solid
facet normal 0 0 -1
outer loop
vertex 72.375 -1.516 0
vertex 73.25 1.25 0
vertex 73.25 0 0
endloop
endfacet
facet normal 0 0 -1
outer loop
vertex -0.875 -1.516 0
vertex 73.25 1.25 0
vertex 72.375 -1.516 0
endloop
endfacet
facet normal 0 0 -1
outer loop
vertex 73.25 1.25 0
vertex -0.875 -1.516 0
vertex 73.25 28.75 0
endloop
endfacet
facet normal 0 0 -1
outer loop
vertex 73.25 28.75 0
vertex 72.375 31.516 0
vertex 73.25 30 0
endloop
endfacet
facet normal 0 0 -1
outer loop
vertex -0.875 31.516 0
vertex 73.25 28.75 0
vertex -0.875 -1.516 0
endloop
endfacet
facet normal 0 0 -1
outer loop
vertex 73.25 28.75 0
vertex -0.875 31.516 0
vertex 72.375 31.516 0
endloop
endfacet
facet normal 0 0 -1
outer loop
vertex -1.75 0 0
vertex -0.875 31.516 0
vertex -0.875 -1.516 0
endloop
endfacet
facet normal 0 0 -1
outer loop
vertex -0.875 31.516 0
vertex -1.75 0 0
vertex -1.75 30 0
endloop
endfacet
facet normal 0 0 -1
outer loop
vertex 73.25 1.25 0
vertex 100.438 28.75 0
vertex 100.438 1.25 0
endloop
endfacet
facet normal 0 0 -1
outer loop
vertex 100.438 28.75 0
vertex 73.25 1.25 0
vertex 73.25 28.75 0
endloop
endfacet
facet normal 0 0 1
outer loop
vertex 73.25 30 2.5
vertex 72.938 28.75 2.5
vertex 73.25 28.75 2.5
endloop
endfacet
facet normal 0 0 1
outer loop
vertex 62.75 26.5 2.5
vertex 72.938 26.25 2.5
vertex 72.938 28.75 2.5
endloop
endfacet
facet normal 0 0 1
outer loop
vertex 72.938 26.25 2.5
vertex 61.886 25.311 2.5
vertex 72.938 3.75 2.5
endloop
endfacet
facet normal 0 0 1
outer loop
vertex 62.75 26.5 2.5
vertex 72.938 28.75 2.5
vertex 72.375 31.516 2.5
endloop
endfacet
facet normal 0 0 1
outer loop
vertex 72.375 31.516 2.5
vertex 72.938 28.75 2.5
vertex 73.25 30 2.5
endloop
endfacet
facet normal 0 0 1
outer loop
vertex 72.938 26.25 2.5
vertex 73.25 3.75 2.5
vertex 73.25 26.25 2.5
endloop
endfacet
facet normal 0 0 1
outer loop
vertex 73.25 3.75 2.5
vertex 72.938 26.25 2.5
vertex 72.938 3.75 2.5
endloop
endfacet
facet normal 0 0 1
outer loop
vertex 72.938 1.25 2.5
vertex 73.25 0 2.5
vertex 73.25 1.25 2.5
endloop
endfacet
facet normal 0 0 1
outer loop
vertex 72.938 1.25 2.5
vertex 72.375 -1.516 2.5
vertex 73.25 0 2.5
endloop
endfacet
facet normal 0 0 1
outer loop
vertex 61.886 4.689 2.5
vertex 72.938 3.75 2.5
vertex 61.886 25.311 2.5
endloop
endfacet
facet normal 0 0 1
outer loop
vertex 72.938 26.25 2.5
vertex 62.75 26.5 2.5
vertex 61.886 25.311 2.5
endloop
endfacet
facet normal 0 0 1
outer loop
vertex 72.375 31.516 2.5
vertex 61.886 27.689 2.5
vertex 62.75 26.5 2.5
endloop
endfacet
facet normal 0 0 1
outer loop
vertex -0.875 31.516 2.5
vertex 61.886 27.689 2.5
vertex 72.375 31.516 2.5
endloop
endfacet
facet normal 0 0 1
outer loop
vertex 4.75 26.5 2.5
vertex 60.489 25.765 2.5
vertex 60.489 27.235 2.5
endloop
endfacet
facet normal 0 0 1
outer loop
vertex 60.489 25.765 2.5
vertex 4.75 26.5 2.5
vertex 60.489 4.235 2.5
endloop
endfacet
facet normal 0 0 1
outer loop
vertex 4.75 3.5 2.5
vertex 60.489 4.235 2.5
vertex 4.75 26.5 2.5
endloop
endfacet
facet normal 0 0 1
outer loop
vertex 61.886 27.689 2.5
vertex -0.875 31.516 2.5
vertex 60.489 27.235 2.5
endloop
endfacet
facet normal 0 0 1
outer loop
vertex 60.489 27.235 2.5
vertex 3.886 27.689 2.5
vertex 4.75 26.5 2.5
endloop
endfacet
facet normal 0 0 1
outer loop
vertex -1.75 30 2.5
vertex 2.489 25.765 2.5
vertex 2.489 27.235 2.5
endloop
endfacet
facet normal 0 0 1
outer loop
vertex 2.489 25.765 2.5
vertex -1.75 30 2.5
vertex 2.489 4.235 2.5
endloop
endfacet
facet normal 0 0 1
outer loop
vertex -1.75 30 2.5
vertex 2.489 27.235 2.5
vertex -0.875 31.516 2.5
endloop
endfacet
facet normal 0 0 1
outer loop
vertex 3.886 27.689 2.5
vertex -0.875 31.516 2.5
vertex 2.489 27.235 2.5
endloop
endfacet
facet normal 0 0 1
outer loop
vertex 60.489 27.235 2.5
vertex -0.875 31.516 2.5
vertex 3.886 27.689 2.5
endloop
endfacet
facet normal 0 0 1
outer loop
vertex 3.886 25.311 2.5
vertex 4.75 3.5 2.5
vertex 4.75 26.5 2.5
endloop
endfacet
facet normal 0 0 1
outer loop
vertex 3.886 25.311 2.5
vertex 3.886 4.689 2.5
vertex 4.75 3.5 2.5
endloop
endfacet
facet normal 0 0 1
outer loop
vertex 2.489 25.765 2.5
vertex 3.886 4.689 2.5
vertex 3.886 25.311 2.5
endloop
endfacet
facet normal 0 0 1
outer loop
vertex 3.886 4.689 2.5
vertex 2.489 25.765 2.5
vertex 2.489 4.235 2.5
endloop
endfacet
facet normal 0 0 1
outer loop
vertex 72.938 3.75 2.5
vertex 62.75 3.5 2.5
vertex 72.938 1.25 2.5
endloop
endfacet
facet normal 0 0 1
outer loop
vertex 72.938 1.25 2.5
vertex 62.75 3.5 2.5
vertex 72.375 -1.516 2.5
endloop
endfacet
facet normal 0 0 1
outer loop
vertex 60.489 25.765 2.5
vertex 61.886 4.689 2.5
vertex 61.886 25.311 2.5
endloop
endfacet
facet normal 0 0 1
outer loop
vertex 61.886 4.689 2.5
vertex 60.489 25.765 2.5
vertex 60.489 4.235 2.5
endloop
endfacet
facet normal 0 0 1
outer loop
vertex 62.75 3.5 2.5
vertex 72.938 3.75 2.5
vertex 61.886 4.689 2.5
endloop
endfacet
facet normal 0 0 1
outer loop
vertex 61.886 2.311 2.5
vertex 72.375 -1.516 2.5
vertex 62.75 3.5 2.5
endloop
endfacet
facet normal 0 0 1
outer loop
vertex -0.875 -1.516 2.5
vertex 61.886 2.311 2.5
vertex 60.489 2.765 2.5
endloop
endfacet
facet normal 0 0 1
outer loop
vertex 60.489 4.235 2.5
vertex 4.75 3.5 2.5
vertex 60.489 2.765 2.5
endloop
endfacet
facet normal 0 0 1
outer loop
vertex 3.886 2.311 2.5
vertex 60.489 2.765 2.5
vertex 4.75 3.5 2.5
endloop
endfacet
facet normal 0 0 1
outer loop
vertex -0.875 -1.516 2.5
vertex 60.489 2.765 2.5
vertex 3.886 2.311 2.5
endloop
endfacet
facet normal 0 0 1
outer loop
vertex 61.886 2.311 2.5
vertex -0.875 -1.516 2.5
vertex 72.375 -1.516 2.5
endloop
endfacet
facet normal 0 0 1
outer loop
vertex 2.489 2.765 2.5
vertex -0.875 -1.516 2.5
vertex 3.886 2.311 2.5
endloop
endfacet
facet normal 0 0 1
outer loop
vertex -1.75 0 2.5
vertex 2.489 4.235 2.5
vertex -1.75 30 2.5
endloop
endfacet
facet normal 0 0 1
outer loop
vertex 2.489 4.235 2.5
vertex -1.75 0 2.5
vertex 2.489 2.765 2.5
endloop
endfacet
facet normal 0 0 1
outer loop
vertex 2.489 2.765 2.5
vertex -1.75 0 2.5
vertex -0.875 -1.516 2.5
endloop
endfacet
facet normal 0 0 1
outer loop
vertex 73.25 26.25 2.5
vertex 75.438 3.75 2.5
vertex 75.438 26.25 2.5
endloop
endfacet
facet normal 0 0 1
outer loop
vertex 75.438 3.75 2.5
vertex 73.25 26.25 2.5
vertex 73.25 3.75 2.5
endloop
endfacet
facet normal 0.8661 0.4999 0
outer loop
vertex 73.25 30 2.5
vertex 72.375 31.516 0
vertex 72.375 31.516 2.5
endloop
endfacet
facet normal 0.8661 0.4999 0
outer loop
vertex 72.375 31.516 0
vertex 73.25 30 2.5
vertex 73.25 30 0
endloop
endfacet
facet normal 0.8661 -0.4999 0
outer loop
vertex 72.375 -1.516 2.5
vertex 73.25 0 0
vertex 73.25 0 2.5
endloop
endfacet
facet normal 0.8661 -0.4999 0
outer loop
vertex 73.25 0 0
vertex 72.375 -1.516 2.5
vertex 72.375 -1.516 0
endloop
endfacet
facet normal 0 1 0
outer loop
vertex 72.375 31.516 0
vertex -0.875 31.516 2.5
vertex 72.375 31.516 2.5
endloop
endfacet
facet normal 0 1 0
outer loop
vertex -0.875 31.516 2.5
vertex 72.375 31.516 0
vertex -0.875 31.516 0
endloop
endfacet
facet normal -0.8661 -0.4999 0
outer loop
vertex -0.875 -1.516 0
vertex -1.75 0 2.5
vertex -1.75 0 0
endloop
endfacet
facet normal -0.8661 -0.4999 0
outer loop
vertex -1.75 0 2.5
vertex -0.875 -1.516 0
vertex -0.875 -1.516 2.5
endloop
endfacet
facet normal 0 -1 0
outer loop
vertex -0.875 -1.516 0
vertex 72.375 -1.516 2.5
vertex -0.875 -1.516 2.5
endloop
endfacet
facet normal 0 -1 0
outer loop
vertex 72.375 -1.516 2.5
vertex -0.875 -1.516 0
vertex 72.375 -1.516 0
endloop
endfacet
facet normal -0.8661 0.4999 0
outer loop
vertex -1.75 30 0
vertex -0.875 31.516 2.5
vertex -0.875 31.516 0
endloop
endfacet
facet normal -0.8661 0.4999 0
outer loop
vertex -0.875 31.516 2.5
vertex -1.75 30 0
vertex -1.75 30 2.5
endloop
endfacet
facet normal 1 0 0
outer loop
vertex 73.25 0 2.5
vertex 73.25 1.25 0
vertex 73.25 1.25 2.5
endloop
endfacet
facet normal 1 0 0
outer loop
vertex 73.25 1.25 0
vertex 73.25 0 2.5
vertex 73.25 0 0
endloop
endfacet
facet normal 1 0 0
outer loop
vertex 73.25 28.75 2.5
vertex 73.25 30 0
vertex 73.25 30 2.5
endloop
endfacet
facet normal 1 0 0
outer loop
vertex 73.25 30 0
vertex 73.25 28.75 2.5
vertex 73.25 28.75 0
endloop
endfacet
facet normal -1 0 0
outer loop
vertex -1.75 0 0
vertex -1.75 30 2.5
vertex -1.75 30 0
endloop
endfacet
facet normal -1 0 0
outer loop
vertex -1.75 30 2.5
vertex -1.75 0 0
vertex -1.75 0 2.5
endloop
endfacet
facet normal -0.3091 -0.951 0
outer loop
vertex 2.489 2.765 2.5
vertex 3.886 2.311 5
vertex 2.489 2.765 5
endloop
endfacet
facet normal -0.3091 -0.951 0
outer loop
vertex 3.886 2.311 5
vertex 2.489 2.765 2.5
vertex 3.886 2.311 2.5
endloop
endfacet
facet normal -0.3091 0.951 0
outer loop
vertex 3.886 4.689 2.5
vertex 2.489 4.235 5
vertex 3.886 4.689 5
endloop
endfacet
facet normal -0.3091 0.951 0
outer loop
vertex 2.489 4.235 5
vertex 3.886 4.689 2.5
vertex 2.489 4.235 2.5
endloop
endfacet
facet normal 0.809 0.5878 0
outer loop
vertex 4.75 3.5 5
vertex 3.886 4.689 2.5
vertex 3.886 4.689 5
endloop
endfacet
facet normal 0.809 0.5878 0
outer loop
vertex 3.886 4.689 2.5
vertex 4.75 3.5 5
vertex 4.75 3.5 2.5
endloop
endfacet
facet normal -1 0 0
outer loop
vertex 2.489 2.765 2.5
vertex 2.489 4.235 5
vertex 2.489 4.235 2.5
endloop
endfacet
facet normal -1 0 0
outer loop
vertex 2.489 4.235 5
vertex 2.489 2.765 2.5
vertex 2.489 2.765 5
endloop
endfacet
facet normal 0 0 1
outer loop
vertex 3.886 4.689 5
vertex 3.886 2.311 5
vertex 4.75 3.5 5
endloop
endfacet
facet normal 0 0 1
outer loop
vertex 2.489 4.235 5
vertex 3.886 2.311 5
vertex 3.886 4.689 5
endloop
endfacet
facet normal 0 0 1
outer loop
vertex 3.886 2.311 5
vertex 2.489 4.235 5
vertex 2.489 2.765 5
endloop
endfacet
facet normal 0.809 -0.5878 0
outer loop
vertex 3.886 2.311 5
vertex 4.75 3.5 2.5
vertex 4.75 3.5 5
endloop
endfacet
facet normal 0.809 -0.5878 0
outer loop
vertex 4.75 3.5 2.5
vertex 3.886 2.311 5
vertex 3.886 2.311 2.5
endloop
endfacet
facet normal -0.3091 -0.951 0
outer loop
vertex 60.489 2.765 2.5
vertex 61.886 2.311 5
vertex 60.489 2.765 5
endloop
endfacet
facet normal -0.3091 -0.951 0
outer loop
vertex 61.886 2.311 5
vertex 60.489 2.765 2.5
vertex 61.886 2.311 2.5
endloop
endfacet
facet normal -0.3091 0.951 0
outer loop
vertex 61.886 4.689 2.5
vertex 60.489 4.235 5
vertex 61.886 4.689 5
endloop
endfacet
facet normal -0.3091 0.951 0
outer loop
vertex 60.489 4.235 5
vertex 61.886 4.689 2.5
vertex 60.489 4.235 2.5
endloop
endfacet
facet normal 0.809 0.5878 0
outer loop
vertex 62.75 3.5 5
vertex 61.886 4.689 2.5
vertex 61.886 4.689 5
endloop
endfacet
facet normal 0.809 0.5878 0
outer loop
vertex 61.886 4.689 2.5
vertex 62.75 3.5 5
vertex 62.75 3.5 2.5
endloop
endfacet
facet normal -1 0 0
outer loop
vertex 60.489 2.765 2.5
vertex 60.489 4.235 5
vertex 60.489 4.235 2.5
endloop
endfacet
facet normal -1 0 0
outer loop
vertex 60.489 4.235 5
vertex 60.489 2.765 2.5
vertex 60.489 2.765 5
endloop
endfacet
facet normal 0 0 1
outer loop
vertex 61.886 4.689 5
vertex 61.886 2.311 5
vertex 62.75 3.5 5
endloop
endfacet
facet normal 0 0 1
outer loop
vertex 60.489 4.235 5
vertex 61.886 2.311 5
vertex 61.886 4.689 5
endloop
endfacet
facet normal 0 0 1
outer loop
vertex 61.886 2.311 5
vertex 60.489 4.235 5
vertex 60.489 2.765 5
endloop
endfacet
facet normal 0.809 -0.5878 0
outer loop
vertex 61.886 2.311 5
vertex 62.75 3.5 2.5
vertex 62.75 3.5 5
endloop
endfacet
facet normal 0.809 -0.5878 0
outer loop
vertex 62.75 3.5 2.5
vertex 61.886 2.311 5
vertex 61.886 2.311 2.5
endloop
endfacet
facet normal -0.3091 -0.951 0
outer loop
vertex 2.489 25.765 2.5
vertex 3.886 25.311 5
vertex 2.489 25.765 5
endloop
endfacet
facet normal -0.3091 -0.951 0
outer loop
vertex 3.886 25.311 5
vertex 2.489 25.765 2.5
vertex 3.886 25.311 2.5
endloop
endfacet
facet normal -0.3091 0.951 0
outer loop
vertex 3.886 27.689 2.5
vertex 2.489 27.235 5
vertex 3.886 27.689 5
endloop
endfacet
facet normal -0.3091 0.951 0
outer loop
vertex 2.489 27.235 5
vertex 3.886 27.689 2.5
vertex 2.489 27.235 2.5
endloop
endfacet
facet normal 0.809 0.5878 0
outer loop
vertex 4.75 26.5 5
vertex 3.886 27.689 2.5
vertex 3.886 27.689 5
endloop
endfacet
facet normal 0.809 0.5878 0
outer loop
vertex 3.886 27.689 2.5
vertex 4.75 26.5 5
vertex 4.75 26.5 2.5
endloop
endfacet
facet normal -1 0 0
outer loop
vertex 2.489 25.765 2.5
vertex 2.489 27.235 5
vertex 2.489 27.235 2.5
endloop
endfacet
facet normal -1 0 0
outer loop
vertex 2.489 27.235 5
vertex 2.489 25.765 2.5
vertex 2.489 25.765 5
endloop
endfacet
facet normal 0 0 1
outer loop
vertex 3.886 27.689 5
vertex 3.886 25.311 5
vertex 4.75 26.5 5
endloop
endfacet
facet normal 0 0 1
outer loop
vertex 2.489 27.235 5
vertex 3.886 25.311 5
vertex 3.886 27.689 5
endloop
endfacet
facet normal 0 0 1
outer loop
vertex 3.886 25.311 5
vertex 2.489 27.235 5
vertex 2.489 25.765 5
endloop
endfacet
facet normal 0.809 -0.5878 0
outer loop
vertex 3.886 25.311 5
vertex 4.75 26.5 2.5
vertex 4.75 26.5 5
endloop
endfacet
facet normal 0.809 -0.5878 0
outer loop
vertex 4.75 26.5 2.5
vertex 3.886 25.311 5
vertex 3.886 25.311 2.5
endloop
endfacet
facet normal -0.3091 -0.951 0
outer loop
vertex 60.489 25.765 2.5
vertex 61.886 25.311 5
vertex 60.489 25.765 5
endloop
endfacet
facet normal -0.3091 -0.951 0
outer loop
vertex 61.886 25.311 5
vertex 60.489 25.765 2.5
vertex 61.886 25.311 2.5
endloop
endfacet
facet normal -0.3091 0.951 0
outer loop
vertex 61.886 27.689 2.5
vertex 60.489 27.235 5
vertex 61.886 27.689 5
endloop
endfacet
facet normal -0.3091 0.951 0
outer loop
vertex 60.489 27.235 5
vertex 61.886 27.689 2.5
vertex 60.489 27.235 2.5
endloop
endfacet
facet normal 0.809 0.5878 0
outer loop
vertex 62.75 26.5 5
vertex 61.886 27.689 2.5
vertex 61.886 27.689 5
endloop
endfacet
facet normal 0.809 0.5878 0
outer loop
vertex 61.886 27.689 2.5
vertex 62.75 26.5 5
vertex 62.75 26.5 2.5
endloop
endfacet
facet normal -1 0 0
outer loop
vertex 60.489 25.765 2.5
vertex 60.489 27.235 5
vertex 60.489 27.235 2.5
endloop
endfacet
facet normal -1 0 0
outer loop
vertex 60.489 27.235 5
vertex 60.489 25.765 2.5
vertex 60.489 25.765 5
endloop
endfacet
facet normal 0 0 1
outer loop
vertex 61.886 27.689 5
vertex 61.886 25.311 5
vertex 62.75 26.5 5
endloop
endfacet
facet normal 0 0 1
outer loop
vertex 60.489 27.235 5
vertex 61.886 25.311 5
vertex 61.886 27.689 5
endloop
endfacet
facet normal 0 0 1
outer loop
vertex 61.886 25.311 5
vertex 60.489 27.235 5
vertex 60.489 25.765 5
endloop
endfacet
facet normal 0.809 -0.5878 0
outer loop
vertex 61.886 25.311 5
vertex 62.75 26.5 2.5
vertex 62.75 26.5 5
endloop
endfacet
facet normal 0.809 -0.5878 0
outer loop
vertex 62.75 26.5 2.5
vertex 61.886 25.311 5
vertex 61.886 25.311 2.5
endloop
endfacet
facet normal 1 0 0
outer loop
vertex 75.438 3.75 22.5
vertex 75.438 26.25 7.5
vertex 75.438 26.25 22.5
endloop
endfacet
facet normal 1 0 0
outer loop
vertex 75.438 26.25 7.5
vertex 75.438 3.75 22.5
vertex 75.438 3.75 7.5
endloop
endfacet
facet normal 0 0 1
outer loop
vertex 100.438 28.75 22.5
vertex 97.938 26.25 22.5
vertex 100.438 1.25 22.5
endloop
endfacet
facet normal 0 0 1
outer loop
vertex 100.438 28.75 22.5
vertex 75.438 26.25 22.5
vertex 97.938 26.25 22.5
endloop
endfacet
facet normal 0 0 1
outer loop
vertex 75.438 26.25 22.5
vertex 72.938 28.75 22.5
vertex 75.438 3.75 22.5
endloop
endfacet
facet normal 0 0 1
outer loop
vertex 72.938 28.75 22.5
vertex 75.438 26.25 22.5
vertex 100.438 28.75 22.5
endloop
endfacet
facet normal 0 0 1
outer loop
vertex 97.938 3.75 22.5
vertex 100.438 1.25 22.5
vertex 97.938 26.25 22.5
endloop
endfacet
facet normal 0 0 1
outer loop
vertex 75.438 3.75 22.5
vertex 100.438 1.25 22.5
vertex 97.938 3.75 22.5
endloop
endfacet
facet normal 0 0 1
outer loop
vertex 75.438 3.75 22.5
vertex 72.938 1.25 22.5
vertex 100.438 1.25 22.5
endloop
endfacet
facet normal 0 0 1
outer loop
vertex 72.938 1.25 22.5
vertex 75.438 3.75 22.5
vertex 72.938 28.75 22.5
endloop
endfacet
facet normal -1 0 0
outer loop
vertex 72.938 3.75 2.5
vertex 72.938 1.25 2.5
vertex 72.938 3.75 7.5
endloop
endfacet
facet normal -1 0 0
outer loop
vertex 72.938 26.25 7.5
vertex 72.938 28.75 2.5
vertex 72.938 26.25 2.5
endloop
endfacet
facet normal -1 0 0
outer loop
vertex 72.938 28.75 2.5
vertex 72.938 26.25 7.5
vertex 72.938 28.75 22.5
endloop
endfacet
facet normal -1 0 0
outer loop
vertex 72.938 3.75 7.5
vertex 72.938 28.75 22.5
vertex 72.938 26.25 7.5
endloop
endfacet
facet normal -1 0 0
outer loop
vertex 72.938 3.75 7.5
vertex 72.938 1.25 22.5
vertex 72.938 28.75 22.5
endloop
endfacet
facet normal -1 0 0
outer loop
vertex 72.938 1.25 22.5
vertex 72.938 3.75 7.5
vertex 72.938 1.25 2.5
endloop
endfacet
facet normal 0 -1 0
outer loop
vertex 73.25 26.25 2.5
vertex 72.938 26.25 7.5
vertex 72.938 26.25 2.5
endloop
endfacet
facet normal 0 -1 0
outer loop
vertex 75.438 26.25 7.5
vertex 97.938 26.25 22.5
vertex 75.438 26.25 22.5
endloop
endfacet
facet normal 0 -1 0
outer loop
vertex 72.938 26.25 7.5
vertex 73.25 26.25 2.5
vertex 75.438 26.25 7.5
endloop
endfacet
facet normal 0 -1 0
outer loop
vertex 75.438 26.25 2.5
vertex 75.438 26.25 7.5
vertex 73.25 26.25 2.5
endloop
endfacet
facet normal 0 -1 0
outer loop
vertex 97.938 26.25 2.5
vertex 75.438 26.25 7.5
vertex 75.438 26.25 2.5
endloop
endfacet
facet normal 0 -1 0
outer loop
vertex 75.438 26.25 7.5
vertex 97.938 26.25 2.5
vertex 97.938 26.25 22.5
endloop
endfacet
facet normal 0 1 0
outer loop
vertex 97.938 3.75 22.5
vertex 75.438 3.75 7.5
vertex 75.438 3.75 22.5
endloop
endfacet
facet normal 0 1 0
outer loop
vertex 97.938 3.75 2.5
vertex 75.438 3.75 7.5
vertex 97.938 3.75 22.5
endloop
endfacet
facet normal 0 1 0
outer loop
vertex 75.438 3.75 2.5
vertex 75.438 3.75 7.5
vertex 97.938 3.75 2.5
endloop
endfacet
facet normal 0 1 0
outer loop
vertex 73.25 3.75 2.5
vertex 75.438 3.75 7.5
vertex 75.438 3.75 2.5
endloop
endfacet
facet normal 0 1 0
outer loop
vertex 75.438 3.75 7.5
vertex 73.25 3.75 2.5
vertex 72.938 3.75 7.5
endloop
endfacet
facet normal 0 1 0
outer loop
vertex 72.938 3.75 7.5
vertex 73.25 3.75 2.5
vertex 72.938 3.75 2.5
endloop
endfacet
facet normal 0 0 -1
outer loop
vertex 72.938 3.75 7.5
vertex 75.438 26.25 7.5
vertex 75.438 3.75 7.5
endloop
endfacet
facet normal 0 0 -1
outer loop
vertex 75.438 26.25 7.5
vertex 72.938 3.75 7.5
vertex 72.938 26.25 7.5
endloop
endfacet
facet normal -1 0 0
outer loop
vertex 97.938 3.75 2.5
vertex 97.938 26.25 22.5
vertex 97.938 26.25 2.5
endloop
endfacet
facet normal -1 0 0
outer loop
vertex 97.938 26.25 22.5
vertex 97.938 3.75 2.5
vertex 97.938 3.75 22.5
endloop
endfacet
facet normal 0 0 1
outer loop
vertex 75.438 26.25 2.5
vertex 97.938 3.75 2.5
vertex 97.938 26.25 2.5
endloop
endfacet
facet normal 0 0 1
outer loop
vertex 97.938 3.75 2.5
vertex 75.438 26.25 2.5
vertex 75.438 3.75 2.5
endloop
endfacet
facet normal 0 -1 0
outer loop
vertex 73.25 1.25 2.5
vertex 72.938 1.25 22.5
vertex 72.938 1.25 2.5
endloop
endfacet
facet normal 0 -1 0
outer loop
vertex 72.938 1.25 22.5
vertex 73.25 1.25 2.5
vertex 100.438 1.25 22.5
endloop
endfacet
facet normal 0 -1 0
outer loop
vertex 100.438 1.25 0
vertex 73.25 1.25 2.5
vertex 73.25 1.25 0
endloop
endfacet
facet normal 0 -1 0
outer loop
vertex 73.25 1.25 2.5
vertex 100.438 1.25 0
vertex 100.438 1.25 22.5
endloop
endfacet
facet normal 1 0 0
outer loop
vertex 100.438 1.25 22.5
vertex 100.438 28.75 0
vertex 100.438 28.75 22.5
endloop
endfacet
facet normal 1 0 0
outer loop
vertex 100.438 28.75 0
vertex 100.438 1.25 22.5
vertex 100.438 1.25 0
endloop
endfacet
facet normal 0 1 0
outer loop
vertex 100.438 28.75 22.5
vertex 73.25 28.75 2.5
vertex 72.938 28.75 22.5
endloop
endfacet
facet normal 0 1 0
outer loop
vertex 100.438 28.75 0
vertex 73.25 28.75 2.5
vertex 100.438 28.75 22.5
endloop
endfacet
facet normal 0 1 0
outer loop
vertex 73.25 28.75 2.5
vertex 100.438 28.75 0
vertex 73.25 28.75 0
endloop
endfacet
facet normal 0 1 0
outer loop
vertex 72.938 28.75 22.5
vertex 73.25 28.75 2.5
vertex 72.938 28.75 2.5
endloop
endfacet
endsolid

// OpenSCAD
//Raspberry Pi dimensions
width  = 30;
length = 65;
extra_length = 10;

holes_width = 23;
holes_length = 58;
holes_diameter = 2.5;
corner = 3.5;
holes_margin = (corner - holes_diameter)/2;

corrected_length = length - corner;

wall  = 2.5;
tower_width = 22;
margin = 0.5;
tower_width_with_margin = tower_width + margin;

module raspi_platform() {
    //platform
    hull() {
    translate([0, 0, 0 ] )
        cylinder( d = corner, h = wall );
    translate([corrected_length+extra_length, 0, 0 ] )
        cylinder( d = corner, h = wall );
    translate([0, width, 0 ] )
        cylinder( d = corner, h = wall );
    translate([corrected_length+extra_length, width, 0 ] )
        cylinder( d = corner, h = wall );
    }
    //pins
    translate([(1/2)*(length-holes_length), (1/2)*(width-holes_width), wall] )
        cylinder( d = holes_diameter, h = wall );
    translate([(1/2)*(length+holes_length), (1/2)*(width-holes_width), wall] )
        cylinder( d = holes_diameter, h = wall );
    translate([(1/2)*(length-holes_length), (1/2)*(width+holes_width), wall] )
        cylinder( d = holes_diameter, h = wall );
    translate([(1/2)*(length+holes_length), (1/2)*(width+holes_width), wall] )
        cylinder( d = holes_diameter, h = wall );
}

module tower_mount() {
    color( [ 1, 1, 1 ] )
    cube([tower_width_with_margin, tower_width_with_margin, wall ] );
    
    color([ 1, 0, 0 ])
    translate( [0, -wall, 0 ] )
        cube( [ tower_width_with_margin, wall, tower_width_with_margin] );
    
    color([ 0, 1, 0 ])
    translate( [-wall, 0, 0 ] )
        difference() {
            cube( [ wall, tower_width_with_margin, tower_width_with_margin] );
            translate([-wall, 0, wall])
                cube( [3*wall, tower_width_with_margin, 2*wall]);
        }
    color([ 0, 0, 1 ])
    translate( [tower_width_with_margin, 0, 0 ] )
        cube( [ wall, tower_width_with_margin, tower_width_with_margin] );
    
    color([ 1, 1, 0 ])
    translate( [0, tower_width_with_margin, 0 ] )
        cube( [ tower_width_with_margin+0.5*wall, wall, tower_width_with_margin] );

    translate( [-wall, -wall, 0 ] )
        cube([ wall, wall, tower_width_with_margin ] );

    translate( [-wall, tower_width_with_margin, 0 ] )
        cube([ wall, wall, tower_width_with_margin ] );

    translate( [tower_width_with_margin, -wall, 0 ] )
        cube([ wall, wall, tower_width_with_margin ] );

    translate( [tower_width_with_margin, tower_width_with_margin, 0 ] )
        cube([ wall, wall, tower_width_with_margin ] );

}

raspi_platform();
translate( [length+(1/8)*corner+extra_length, (1/2)*(width-tower_width_with_margin), 0 ] )
    tower_mount();
